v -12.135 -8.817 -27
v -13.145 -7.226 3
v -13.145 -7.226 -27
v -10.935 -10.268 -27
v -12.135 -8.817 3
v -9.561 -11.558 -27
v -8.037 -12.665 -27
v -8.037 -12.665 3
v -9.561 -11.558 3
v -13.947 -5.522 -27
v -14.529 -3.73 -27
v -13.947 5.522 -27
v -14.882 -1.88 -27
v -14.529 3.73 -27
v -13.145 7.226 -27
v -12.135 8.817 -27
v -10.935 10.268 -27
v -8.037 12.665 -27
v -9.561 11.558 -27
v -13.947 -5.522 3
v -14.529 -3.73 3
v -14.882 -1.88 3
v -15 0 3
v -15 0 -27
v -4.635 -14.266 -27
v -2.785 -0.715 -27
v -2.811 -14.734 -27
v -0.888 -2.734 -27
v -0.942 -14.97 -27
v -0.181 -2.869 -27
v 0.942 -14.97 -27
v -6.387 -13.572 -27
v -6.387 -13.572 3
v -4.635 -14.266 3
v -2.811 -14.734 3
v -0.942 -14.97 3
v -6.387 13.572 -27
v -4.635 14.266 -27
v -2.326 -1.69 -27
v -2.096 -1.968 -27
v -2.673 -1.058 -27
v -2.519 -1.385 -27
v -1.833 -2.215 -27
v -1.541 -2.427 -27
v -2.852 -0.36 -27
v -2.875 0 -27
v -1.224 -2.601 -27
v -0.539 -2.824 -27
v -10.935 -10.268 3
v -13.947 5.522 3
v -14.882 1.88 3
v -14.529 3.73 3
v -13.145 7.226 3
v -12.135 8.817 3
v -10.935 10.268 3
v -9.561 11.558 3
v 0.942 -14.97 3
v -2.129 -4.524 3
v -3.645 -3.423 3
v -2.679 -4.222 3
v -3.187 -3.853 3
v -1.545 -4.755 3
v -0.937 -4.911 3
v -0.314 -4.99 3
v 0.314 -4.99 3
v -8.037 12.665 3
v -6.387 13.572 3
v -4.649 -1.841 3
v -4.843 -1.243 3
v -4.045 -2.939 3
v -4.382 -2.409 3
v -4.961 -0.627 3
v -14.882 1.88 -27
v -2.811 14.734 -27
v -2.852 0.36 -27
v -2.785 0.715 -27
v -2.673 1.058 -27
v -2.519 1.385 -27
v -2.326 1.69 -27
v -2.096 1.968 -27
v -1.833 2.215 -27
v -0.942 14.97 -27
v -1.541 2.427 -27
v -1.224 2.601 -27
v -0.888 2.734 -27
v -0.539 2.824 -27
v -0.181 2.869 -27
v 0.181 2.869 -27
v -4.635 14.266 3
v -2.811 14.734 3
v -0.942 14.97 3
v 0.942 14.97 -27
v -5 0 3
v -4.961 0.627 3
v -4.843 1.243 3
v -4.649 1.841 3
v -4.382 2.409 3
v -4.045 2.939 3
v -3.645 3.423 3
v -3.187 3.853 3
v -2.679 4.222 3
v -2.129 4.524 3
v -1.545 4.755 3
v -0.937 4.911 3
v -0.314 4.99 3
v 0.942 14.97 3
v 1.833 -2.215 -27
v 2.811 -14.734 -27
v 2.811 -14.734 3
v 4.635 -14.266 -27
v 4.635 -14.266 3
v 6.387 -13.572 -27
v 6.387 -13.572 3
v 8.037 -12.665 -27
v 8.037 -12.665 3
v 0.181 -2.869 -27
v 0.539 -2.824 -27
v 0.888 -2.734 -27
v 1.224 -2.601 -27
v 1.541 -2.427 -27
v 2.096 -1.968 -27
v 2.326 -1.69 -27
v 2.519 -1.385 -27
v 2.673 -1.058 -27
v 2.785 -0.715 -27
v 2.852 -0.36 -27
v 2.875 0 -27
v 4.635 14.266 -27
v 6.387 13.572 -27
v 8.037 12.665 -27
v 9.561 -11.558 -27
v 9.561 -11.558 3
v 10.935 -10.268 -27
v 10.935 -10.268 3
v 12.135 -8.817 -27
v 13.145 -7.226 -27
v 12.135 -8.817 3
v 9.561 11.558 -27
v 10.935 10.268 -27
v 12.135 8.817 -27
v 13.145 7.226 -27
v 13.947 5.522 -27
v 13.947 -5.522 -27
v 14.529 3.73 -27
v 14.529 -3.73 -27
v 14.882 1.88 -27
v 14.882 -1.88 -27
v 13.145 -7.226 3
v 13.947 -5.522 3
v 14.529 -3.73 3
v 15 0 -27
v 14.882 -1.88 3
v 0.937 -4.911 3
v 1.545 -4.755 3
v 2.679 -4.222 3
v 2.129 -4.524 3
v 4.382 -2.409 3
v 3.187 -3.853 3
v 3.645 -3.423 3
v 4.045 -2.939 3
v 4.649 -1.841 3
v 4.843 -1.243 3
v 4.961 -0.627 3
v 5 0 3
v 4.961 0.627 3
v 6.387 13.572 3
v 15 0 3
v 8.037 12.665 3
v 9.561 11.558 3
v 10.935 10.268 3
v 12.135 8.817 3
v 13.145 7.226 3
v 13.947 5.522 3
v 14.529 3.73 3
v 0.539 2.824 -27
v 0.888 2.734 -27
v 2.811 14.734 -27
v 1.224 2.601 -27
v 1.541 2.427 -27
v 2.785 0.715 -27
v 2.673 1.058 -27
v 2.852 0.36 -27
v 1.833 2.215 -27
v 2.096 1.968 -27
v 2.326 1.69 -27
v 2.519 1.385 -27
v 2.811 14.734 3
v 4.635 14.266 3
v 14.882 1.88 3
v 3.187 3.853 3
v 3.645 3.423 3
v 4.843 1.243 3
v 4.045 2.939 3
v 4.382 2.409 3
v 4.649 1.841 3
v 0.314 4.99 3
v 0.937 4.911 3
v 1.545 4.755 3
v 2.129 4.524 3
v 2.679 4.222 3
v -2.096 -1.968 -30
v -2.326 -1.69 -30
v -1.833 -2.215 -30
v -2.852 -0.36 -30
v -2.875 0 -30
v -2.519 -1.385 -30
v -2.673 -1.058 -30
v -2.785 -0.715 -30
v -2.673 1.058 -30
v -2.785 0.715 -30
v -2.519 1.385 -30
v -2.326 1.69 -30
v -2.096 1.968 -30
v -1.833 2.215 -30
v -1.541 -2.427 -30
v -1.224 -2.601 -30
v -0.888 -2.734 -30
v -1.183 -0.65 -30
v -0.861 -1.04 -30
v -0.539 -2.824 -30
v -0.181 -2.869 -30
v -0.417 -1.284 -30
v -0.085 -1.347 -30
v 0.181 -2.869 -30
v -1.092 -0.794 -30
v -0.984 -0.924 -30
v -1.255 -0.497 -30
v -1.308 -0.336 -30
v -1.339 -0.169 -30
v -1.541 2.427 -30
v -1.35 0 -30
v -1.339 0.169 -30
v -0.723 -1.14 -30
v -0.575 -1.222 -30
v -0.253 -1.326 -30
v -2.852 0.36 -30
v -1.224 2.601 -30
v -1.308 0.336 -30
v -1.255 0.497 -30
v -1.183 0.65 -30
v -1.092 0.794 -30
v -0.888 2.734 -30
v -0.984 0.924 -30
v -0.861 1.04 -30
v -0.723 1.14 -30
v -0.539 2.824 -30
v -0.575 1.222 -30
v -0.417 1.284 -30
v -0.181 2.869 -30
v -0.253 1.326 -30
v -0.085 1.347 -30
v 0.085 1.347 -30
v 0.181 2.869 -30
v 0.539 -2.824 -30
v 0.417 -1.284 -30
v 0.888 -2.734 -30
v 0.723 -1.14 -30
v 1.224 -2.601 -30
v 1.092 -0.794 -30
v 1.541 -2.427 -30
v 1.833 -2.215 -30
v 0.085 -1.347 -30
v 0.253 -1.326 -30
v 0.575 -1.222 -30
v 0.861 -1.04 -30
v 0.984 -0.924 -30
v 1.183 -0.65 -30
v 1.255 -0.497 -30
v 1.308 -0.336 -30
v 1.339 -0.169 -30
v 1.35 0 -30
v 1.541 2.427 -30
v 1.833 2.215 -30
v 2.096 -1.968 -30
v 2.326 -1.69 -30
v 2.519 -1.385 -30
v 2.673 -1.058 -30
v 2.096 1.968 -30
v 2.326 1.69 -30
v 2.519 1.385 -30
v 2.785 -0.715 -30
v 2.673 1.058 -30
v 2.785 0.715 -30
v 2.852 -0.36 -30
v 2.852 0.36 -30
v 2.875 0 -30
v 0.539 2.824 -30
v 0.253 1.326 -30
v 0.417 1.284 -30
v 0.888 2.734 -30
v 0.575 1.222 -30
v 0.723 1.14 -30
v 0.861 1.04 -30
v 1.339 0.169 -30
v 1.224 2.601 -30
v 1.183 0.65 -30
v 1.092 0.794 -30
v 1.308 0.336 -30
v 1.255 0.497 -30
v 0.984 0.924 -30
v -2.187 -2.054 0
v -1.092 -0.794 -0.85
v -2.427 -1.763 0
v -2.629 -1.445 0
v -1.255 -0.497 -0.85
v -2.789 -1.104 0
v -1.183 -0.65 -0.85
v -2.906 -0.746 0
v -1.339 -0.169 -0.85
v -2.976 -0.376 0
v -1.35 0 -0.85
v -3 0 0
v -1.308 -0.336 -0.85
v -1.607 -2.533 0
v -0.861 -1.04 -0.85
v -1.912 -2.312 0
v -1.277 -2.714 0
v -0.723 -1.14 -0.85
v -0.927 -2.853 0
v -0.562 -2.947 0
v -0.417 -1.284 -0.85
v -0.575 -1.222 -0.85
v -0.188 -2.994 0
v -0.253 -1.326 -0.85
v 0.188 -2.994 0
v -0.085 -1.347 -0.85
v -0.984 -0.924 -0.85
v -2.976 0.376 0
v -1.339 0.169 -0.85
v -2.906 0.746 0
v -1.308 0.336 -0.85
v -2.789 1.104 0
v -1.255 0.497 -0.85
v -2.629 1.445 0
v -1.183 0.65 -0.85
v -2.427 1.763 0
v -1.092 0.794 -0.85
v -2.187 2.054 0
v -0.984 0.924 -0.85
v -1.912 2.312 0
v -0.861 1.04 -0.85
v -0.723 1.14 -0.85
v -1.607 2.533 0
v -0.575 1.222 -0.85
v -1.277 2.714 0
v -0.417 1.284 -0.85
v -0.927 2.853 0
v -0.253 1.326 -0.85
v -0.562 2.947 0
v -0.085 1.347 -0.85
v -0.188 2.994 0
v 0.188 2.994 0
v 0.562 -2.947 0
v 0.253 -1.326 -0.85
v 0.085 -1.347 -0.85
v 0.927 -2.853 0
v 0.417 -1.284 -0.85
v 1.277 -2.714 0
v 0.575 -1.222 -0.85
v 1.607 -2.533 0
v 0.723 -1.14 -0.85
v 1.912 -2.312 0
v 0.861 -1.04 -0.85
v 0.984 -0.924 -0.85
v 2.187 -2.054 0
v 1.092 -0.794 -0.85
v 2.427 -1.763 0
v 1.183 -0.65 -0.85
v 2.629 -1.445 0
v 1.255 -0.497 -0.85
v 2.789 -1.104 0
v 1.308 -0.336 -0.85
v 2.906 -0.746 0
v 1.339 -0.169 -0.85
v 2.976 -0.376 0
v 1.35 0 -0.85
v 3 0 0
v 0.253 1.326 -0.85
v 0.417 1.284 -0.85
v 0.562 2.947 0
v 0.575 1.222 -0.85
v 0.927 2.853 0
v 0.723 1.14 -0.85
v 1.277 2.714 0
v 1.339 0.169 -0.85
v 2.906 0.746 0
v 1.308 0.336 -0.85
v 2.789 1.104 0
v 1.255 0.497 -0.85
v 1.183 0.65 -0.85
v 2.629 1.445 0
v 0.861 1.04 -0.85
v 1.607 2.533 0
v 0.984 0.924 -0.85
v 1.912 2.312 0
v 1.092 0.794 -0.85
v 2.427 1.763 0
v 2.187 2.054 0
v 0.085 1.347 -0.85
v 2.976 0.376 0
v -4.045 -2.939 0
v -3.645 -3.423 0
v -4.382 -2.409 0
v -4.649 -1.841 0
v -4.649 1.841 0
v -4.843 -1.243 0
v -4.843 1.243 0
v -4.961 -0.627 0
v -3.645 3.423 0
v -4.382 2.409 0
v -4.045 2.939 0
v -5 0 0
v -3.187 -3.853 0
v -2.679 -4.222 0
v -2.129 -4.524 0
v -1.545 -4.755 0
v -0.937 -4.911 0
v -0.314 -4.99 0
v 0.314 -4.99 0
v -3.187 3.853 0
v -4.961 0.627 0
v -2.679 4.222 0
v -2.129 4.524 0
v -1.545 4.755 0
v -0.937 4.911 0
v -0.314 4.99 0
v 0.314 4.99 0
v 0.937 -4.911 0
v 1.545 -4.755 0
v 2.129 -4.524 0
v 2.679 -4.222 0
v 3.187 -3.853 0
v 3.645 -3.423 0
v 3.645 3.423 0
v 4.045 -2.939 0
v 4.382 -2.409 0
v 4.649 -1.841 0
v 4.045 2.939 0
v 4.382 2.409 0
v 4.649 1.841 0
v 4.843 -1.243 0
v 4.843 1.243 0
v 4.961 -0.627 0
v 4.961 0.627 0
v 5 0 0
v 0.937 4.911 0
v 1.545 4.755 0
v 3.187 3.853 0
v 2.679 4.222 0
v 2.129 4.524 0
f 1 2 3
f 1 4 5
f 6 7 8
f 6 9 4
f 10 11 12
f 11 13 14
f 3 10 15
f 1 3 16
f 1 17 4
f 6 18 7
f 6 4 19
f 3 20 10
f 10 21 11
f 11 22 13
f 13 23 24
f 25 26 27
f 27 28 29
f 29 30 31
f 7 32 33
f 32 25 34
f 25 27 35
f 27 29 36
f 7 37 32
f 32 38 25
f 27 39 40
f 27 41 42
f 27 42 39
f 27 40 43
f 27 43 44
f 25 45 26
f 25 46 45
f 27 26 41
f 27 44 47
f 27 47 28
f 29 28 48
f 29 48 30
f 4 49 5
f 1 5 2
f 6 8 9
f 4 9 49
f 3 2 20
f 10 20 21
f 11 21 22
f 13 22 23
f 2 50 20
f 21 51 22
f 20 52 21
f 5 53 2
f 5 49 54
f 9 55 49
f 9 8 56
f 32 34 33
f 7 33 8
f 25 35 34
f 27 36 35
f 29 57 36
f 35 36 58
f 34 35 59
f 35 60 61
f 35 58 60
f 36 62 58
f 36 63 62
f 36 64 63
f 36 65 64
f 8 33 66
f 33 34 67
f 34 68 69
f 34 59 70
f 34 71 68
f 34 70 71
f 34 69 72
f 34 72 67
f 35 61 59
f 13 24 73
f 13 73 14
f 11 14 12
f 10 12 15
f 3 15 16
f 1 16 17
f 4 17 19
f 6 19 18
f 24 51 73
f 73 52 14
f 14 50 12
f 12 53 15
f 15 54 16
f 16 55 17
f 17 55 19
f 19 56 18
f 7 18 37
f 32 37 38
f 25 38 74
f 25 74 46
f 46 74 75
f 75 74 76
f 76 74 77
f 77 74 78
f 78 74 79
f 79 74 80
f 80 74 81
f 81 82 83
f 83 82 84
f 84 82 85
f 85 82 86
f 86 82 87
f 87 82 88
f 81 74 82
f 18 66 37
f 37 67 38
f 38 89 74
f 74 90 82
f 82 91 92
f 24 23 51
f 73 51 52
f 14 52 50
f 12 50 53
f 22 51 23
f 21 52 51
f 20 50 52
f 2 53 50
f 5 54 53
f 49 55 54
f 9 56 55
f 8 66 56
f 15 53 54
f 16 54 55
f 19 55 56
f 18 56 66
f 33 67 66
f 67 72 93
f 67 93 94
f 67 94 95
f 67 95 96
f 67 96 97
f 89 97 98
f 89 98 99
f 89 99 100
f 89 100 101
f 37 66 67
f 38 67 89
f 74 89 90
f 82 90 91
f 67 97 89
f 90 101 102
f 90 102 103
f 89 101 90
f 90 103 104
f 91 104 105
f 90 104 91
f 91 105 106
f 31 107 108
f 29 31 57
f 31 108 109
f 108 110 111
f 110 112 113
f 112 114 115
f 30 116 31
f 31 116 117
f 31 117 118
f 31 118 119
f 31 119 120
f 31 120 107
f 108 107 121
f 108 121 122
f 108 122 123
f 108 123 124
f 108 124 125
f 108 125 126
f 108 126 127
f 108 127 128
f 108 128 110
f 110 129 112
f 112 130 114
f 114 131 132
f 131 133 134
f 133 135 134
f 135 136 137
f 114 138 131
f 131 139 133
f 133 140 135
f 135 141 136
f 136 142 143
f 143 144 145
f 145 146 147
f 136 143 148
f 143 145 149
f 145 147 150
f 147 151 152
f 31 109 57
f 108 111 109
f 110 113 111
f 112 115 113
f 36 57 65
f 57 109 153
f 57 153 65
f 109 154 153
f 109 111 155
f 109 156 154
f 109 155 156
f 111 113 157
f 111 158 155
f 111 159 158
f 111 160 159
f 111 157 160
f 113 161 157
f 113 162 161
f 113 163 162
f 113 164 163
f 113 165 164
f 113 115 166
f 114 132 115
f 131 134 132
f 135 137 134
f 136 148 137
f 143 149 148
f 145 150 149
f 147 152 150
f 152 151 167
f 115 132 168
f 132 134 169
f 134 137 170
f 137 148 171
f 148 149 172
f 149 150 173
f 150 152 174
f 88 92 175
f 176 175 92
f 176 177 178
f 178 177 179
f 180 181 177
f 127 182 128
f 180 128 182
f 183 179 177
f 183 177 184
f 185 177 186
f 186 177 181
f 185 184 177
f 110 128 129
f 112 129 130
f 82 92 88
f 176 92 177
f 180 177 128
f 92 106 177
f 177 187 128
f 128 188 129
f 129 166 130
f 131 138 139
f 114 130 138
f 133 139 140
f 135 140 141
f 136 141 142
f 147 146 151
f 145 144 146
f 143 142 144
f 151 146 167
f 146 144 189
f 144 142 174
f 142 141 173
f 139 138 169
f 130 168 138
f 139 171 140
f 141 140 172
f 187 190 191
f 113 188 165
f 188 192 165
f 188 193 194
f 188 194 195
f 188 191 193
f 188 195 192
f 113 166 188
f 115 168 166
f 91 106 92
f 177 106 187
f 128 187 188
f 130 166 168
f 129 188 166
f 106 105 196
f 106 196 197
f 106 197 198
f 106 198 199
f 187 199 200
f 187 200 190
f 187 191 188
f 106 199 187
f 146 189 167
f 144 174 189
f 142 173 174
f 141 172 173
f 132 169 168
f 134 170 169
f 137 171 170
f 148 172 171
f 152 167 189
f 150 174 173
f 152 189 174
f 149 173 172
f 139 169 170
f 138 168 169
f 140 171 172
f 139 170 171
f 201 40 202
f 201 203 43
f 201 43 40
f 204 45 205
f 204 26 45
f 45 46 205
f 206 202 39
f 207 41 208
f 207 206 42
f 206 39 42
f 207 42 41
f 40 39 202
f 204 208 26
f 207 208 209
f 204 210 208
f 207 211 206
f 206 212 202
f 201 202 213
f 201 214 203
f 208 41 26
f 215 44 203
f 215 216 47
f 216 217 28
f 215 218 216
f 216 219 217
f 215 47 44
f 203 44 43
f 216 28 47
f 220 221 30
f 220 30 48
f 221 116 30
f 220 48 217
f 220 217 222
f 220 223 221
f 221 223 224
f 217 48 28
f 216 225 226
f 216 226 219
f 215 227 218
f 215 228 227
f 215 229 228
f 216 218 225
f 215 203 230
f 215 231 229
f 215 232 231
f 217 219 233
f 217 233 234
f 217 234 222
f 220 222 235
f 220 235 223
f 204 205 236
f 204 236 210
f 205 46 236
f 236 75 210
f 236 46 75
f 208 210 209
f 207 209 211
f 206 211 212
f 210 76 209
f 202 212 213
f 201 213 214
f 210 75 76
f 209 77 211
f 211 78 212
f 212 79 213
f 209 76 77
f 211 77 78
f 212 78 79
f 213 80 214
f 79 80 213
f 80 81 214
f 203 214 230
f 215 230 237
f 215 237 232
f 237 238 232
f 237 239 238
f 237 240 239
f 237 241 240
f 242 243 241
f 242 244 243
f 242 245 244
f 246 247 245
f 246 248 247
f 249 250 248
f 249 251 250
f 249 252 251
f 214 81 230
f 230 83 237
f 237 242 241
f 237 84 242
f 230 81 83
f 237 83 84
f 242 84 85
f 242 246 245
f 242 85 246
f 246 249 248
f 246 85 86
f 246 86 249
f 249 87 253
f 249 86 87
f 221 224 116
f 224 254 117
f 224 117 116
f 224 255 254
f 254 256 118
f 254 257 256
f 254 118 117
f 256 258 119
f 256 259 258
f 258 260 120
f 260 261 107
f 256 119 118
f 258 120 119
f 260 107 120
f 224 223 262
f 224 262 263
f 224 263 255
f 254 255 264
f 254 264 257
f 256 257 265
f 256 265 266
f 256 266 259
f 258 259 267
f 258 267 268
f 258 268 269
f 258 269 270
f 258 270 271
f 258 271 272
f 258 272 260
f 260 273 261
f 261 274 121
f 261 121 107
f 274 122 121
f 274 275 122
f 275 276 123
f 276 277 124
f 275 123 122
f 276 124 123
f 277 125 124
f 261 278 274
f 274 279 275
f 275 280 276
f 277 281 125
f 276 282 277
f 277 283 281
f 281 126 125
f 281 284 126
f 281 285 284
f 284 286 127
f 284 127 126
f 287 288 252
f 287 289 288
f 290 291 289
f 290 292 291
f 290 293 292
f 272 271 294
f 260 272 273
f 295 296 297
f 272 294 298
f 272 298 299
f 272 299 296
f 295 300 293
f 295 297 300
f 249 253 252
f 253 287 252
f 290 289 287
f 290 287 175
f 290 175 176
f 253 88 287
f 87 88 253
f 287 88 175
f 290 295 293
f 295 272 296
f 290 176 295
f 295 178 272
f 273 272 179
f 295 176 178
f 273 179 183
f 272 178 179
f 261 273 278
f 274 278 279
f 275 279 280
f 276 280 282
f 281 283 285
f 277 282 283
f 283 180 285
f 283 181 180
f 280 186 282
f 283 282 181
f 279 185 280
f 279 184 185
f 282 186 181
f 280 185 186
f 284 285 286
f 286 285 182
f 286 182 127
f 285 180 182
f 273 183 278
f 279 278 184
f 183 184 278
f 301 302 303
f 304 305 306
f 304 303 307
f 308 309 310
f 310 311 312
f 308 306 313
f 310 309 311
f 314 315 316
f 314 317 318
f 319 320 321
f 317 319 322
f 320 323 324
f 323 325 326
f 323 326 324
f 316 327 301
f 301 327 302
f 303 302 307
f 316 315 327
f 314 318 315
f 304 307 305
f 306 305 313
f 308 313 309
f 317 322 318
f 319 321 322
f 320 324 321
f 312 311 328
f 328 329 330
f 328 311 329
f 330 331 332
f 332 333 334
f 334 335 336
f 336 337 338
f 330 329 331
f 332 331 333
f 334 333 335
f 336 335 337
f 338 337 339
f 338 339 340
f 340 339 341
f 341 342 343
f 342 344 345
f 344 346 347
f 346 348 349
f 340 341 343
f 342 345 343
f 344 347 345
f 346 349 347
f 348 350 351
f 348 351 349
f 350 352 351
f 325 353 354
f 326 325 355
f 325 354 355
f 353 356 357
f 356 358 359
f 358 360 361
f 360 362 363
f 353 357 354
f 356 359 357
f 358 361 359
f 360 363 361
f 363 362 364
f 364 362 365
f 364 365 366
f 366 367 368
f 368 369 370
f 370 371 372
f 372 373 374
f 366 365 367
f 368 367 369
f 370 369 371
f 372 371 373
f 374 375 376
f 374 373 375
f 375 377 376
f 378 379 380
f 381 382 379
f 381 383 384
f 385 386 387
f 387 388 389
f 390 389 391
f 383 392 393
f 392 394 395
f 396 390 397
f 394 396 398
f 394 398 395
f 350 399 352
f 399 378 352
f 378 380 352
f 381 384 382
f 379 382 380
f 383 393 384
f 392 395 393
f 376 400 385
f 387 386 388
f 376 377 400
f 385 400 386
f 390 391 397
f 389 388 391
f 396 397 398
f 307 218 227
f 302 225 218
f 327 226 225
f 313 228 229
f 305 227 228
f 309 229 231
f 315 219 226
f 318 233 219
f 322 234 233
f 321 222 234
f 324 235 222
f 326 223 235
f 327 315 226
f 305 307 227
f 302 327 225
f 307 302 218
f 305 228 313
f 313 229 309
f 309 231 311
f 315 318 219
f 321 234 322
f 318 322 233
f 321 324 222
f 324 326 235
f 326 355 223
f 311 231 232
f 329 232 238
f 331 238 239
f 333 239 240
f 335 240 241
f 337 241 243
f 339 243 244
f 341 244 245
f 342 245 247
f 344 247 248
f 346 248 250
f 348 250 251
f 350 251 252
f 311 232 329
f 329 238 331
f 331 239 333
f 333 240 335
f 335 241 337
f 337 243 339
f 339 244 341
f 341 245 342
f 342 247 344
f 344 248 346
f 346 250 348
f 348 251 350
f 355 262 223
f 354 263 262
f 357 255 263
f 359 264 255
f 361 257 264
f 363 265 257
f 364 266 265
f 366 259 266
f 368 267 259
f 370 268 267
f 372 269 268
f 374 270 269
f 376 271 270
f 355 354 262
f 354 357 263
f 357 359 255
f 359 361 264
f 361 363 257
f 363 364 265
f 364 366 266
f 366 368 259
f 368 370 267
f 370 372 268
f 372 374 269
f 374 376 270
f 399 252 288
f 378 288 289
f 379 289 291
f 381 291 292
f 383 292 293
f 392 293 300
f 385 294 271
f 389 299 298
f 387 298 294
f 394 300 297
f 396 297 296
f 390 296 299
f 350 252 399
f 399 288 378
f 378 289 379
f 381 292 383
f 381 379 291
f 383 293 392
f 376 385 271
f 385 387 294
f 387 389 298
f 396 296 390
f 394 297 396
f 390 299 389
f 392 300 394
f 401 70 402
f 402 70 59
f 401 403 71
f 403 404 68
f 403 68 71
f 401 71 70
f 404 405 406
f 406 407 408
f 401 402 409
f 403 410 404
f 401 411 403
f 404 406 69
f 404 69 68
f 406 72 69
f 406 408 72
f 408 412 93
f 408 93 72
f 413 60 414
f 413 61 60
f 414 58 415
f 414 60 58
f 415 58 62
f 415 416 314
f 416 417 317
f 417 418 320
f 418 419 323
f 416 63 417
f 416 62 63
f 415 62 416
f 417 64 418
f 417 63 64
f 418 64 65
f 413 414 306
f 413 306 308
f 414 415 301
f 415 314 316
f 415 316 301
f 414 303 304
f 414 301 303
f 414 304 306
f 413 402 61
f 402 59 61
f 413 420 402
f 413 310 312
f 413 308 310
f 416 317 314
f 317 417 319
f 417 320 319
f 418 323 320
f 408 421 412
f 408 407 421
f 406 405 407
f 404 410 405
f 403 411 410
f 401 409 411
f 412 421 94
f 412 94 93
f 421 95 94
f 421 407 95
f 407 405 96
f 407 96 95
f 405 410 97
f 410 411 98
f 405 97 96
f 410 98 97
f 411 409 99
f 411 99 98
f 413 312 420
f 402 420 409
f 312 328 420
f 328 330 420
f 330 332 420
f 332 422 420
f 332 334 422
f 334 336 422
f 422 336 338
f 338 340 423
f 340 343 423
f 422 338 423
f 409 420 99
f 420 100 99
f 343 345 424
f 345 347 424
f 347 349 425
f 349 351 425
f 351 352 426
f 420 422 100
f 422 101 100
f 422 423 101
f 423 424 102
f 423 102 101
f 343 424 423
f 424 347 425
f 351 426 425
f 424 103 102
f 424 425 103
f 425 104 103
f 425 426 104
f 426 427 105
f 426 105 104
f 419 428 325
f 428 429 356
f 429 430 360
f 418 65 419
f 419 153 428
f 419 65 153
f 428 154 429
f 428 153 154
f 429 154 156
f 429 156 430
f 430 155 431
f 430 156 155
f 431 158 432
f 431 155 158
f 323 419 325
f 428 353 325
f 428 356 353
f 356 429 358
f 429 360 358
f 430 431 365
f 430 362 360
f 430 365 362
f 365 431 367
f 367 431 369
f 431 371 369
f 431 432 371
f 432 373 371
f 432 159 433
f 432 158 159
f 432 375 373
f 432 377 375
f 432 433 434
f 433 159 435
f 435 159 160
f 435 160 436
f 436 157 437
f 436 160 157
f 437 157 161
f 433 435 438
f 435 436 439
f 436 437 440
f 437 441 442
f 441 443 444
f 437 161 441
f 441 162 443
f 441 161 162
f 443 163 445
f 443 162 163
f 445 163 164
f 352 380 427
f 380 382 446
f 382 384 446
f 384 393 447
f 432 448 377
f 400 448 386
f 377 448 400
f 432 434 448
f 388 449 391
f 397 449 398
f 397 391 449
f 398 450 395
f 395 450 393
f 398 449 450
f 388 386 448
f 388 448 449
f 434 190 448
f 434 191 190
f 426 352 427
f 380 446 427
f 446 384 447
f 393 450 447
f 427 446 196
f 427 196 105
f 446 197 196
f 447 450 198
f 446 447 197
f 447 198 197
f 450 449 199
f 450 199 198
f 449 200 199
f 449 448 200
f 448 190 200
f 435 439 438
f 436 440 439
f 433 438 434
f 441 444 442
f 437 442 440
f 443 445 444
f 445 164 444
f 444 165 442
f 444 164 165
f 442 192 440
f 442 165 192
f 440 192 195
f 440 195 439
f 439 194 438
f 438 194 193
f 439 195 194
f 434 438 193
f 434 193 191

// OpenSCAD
$fn = 50;


difference() {
	union() {
		translate(v = [0, 0, -27.0000000000]) {
			cylinder(h = 30, r = 15.0000000000);
		}
		#translate(v = [0, 0, -30.0000000000]) {
			cylinder(h = 30, r = 2.8750000000);
		}
	}
	union() {
		translate(v = [0, 0, 0]) {
			rotate(a = [0, 0, 0]) {
				difference() {
					union() {
						translate(v = [0, 0, -30.0000000000]) {
							cylinder(h = 30, r = 1.0000000000);
						}
						translate(v = [0, 0, -0.8500000000]) {
							cylinder(h = 0.8500000000, r1 = 1.3500000000, r2 = 3.0000000000);
						}
						translate(v = [0, 0, -30.0000000000]) {
							cylinder(h = 30, r = 1.3500000000);
						}
						translate(v = [0, 0, -30.0000000000]) {
							cylinder(h = 30, r = 1.0000000000);
						}
					}
					union();
				}
			}
		}
		#cylinder(h = 3, r = 5.0000000000);
	}
}
